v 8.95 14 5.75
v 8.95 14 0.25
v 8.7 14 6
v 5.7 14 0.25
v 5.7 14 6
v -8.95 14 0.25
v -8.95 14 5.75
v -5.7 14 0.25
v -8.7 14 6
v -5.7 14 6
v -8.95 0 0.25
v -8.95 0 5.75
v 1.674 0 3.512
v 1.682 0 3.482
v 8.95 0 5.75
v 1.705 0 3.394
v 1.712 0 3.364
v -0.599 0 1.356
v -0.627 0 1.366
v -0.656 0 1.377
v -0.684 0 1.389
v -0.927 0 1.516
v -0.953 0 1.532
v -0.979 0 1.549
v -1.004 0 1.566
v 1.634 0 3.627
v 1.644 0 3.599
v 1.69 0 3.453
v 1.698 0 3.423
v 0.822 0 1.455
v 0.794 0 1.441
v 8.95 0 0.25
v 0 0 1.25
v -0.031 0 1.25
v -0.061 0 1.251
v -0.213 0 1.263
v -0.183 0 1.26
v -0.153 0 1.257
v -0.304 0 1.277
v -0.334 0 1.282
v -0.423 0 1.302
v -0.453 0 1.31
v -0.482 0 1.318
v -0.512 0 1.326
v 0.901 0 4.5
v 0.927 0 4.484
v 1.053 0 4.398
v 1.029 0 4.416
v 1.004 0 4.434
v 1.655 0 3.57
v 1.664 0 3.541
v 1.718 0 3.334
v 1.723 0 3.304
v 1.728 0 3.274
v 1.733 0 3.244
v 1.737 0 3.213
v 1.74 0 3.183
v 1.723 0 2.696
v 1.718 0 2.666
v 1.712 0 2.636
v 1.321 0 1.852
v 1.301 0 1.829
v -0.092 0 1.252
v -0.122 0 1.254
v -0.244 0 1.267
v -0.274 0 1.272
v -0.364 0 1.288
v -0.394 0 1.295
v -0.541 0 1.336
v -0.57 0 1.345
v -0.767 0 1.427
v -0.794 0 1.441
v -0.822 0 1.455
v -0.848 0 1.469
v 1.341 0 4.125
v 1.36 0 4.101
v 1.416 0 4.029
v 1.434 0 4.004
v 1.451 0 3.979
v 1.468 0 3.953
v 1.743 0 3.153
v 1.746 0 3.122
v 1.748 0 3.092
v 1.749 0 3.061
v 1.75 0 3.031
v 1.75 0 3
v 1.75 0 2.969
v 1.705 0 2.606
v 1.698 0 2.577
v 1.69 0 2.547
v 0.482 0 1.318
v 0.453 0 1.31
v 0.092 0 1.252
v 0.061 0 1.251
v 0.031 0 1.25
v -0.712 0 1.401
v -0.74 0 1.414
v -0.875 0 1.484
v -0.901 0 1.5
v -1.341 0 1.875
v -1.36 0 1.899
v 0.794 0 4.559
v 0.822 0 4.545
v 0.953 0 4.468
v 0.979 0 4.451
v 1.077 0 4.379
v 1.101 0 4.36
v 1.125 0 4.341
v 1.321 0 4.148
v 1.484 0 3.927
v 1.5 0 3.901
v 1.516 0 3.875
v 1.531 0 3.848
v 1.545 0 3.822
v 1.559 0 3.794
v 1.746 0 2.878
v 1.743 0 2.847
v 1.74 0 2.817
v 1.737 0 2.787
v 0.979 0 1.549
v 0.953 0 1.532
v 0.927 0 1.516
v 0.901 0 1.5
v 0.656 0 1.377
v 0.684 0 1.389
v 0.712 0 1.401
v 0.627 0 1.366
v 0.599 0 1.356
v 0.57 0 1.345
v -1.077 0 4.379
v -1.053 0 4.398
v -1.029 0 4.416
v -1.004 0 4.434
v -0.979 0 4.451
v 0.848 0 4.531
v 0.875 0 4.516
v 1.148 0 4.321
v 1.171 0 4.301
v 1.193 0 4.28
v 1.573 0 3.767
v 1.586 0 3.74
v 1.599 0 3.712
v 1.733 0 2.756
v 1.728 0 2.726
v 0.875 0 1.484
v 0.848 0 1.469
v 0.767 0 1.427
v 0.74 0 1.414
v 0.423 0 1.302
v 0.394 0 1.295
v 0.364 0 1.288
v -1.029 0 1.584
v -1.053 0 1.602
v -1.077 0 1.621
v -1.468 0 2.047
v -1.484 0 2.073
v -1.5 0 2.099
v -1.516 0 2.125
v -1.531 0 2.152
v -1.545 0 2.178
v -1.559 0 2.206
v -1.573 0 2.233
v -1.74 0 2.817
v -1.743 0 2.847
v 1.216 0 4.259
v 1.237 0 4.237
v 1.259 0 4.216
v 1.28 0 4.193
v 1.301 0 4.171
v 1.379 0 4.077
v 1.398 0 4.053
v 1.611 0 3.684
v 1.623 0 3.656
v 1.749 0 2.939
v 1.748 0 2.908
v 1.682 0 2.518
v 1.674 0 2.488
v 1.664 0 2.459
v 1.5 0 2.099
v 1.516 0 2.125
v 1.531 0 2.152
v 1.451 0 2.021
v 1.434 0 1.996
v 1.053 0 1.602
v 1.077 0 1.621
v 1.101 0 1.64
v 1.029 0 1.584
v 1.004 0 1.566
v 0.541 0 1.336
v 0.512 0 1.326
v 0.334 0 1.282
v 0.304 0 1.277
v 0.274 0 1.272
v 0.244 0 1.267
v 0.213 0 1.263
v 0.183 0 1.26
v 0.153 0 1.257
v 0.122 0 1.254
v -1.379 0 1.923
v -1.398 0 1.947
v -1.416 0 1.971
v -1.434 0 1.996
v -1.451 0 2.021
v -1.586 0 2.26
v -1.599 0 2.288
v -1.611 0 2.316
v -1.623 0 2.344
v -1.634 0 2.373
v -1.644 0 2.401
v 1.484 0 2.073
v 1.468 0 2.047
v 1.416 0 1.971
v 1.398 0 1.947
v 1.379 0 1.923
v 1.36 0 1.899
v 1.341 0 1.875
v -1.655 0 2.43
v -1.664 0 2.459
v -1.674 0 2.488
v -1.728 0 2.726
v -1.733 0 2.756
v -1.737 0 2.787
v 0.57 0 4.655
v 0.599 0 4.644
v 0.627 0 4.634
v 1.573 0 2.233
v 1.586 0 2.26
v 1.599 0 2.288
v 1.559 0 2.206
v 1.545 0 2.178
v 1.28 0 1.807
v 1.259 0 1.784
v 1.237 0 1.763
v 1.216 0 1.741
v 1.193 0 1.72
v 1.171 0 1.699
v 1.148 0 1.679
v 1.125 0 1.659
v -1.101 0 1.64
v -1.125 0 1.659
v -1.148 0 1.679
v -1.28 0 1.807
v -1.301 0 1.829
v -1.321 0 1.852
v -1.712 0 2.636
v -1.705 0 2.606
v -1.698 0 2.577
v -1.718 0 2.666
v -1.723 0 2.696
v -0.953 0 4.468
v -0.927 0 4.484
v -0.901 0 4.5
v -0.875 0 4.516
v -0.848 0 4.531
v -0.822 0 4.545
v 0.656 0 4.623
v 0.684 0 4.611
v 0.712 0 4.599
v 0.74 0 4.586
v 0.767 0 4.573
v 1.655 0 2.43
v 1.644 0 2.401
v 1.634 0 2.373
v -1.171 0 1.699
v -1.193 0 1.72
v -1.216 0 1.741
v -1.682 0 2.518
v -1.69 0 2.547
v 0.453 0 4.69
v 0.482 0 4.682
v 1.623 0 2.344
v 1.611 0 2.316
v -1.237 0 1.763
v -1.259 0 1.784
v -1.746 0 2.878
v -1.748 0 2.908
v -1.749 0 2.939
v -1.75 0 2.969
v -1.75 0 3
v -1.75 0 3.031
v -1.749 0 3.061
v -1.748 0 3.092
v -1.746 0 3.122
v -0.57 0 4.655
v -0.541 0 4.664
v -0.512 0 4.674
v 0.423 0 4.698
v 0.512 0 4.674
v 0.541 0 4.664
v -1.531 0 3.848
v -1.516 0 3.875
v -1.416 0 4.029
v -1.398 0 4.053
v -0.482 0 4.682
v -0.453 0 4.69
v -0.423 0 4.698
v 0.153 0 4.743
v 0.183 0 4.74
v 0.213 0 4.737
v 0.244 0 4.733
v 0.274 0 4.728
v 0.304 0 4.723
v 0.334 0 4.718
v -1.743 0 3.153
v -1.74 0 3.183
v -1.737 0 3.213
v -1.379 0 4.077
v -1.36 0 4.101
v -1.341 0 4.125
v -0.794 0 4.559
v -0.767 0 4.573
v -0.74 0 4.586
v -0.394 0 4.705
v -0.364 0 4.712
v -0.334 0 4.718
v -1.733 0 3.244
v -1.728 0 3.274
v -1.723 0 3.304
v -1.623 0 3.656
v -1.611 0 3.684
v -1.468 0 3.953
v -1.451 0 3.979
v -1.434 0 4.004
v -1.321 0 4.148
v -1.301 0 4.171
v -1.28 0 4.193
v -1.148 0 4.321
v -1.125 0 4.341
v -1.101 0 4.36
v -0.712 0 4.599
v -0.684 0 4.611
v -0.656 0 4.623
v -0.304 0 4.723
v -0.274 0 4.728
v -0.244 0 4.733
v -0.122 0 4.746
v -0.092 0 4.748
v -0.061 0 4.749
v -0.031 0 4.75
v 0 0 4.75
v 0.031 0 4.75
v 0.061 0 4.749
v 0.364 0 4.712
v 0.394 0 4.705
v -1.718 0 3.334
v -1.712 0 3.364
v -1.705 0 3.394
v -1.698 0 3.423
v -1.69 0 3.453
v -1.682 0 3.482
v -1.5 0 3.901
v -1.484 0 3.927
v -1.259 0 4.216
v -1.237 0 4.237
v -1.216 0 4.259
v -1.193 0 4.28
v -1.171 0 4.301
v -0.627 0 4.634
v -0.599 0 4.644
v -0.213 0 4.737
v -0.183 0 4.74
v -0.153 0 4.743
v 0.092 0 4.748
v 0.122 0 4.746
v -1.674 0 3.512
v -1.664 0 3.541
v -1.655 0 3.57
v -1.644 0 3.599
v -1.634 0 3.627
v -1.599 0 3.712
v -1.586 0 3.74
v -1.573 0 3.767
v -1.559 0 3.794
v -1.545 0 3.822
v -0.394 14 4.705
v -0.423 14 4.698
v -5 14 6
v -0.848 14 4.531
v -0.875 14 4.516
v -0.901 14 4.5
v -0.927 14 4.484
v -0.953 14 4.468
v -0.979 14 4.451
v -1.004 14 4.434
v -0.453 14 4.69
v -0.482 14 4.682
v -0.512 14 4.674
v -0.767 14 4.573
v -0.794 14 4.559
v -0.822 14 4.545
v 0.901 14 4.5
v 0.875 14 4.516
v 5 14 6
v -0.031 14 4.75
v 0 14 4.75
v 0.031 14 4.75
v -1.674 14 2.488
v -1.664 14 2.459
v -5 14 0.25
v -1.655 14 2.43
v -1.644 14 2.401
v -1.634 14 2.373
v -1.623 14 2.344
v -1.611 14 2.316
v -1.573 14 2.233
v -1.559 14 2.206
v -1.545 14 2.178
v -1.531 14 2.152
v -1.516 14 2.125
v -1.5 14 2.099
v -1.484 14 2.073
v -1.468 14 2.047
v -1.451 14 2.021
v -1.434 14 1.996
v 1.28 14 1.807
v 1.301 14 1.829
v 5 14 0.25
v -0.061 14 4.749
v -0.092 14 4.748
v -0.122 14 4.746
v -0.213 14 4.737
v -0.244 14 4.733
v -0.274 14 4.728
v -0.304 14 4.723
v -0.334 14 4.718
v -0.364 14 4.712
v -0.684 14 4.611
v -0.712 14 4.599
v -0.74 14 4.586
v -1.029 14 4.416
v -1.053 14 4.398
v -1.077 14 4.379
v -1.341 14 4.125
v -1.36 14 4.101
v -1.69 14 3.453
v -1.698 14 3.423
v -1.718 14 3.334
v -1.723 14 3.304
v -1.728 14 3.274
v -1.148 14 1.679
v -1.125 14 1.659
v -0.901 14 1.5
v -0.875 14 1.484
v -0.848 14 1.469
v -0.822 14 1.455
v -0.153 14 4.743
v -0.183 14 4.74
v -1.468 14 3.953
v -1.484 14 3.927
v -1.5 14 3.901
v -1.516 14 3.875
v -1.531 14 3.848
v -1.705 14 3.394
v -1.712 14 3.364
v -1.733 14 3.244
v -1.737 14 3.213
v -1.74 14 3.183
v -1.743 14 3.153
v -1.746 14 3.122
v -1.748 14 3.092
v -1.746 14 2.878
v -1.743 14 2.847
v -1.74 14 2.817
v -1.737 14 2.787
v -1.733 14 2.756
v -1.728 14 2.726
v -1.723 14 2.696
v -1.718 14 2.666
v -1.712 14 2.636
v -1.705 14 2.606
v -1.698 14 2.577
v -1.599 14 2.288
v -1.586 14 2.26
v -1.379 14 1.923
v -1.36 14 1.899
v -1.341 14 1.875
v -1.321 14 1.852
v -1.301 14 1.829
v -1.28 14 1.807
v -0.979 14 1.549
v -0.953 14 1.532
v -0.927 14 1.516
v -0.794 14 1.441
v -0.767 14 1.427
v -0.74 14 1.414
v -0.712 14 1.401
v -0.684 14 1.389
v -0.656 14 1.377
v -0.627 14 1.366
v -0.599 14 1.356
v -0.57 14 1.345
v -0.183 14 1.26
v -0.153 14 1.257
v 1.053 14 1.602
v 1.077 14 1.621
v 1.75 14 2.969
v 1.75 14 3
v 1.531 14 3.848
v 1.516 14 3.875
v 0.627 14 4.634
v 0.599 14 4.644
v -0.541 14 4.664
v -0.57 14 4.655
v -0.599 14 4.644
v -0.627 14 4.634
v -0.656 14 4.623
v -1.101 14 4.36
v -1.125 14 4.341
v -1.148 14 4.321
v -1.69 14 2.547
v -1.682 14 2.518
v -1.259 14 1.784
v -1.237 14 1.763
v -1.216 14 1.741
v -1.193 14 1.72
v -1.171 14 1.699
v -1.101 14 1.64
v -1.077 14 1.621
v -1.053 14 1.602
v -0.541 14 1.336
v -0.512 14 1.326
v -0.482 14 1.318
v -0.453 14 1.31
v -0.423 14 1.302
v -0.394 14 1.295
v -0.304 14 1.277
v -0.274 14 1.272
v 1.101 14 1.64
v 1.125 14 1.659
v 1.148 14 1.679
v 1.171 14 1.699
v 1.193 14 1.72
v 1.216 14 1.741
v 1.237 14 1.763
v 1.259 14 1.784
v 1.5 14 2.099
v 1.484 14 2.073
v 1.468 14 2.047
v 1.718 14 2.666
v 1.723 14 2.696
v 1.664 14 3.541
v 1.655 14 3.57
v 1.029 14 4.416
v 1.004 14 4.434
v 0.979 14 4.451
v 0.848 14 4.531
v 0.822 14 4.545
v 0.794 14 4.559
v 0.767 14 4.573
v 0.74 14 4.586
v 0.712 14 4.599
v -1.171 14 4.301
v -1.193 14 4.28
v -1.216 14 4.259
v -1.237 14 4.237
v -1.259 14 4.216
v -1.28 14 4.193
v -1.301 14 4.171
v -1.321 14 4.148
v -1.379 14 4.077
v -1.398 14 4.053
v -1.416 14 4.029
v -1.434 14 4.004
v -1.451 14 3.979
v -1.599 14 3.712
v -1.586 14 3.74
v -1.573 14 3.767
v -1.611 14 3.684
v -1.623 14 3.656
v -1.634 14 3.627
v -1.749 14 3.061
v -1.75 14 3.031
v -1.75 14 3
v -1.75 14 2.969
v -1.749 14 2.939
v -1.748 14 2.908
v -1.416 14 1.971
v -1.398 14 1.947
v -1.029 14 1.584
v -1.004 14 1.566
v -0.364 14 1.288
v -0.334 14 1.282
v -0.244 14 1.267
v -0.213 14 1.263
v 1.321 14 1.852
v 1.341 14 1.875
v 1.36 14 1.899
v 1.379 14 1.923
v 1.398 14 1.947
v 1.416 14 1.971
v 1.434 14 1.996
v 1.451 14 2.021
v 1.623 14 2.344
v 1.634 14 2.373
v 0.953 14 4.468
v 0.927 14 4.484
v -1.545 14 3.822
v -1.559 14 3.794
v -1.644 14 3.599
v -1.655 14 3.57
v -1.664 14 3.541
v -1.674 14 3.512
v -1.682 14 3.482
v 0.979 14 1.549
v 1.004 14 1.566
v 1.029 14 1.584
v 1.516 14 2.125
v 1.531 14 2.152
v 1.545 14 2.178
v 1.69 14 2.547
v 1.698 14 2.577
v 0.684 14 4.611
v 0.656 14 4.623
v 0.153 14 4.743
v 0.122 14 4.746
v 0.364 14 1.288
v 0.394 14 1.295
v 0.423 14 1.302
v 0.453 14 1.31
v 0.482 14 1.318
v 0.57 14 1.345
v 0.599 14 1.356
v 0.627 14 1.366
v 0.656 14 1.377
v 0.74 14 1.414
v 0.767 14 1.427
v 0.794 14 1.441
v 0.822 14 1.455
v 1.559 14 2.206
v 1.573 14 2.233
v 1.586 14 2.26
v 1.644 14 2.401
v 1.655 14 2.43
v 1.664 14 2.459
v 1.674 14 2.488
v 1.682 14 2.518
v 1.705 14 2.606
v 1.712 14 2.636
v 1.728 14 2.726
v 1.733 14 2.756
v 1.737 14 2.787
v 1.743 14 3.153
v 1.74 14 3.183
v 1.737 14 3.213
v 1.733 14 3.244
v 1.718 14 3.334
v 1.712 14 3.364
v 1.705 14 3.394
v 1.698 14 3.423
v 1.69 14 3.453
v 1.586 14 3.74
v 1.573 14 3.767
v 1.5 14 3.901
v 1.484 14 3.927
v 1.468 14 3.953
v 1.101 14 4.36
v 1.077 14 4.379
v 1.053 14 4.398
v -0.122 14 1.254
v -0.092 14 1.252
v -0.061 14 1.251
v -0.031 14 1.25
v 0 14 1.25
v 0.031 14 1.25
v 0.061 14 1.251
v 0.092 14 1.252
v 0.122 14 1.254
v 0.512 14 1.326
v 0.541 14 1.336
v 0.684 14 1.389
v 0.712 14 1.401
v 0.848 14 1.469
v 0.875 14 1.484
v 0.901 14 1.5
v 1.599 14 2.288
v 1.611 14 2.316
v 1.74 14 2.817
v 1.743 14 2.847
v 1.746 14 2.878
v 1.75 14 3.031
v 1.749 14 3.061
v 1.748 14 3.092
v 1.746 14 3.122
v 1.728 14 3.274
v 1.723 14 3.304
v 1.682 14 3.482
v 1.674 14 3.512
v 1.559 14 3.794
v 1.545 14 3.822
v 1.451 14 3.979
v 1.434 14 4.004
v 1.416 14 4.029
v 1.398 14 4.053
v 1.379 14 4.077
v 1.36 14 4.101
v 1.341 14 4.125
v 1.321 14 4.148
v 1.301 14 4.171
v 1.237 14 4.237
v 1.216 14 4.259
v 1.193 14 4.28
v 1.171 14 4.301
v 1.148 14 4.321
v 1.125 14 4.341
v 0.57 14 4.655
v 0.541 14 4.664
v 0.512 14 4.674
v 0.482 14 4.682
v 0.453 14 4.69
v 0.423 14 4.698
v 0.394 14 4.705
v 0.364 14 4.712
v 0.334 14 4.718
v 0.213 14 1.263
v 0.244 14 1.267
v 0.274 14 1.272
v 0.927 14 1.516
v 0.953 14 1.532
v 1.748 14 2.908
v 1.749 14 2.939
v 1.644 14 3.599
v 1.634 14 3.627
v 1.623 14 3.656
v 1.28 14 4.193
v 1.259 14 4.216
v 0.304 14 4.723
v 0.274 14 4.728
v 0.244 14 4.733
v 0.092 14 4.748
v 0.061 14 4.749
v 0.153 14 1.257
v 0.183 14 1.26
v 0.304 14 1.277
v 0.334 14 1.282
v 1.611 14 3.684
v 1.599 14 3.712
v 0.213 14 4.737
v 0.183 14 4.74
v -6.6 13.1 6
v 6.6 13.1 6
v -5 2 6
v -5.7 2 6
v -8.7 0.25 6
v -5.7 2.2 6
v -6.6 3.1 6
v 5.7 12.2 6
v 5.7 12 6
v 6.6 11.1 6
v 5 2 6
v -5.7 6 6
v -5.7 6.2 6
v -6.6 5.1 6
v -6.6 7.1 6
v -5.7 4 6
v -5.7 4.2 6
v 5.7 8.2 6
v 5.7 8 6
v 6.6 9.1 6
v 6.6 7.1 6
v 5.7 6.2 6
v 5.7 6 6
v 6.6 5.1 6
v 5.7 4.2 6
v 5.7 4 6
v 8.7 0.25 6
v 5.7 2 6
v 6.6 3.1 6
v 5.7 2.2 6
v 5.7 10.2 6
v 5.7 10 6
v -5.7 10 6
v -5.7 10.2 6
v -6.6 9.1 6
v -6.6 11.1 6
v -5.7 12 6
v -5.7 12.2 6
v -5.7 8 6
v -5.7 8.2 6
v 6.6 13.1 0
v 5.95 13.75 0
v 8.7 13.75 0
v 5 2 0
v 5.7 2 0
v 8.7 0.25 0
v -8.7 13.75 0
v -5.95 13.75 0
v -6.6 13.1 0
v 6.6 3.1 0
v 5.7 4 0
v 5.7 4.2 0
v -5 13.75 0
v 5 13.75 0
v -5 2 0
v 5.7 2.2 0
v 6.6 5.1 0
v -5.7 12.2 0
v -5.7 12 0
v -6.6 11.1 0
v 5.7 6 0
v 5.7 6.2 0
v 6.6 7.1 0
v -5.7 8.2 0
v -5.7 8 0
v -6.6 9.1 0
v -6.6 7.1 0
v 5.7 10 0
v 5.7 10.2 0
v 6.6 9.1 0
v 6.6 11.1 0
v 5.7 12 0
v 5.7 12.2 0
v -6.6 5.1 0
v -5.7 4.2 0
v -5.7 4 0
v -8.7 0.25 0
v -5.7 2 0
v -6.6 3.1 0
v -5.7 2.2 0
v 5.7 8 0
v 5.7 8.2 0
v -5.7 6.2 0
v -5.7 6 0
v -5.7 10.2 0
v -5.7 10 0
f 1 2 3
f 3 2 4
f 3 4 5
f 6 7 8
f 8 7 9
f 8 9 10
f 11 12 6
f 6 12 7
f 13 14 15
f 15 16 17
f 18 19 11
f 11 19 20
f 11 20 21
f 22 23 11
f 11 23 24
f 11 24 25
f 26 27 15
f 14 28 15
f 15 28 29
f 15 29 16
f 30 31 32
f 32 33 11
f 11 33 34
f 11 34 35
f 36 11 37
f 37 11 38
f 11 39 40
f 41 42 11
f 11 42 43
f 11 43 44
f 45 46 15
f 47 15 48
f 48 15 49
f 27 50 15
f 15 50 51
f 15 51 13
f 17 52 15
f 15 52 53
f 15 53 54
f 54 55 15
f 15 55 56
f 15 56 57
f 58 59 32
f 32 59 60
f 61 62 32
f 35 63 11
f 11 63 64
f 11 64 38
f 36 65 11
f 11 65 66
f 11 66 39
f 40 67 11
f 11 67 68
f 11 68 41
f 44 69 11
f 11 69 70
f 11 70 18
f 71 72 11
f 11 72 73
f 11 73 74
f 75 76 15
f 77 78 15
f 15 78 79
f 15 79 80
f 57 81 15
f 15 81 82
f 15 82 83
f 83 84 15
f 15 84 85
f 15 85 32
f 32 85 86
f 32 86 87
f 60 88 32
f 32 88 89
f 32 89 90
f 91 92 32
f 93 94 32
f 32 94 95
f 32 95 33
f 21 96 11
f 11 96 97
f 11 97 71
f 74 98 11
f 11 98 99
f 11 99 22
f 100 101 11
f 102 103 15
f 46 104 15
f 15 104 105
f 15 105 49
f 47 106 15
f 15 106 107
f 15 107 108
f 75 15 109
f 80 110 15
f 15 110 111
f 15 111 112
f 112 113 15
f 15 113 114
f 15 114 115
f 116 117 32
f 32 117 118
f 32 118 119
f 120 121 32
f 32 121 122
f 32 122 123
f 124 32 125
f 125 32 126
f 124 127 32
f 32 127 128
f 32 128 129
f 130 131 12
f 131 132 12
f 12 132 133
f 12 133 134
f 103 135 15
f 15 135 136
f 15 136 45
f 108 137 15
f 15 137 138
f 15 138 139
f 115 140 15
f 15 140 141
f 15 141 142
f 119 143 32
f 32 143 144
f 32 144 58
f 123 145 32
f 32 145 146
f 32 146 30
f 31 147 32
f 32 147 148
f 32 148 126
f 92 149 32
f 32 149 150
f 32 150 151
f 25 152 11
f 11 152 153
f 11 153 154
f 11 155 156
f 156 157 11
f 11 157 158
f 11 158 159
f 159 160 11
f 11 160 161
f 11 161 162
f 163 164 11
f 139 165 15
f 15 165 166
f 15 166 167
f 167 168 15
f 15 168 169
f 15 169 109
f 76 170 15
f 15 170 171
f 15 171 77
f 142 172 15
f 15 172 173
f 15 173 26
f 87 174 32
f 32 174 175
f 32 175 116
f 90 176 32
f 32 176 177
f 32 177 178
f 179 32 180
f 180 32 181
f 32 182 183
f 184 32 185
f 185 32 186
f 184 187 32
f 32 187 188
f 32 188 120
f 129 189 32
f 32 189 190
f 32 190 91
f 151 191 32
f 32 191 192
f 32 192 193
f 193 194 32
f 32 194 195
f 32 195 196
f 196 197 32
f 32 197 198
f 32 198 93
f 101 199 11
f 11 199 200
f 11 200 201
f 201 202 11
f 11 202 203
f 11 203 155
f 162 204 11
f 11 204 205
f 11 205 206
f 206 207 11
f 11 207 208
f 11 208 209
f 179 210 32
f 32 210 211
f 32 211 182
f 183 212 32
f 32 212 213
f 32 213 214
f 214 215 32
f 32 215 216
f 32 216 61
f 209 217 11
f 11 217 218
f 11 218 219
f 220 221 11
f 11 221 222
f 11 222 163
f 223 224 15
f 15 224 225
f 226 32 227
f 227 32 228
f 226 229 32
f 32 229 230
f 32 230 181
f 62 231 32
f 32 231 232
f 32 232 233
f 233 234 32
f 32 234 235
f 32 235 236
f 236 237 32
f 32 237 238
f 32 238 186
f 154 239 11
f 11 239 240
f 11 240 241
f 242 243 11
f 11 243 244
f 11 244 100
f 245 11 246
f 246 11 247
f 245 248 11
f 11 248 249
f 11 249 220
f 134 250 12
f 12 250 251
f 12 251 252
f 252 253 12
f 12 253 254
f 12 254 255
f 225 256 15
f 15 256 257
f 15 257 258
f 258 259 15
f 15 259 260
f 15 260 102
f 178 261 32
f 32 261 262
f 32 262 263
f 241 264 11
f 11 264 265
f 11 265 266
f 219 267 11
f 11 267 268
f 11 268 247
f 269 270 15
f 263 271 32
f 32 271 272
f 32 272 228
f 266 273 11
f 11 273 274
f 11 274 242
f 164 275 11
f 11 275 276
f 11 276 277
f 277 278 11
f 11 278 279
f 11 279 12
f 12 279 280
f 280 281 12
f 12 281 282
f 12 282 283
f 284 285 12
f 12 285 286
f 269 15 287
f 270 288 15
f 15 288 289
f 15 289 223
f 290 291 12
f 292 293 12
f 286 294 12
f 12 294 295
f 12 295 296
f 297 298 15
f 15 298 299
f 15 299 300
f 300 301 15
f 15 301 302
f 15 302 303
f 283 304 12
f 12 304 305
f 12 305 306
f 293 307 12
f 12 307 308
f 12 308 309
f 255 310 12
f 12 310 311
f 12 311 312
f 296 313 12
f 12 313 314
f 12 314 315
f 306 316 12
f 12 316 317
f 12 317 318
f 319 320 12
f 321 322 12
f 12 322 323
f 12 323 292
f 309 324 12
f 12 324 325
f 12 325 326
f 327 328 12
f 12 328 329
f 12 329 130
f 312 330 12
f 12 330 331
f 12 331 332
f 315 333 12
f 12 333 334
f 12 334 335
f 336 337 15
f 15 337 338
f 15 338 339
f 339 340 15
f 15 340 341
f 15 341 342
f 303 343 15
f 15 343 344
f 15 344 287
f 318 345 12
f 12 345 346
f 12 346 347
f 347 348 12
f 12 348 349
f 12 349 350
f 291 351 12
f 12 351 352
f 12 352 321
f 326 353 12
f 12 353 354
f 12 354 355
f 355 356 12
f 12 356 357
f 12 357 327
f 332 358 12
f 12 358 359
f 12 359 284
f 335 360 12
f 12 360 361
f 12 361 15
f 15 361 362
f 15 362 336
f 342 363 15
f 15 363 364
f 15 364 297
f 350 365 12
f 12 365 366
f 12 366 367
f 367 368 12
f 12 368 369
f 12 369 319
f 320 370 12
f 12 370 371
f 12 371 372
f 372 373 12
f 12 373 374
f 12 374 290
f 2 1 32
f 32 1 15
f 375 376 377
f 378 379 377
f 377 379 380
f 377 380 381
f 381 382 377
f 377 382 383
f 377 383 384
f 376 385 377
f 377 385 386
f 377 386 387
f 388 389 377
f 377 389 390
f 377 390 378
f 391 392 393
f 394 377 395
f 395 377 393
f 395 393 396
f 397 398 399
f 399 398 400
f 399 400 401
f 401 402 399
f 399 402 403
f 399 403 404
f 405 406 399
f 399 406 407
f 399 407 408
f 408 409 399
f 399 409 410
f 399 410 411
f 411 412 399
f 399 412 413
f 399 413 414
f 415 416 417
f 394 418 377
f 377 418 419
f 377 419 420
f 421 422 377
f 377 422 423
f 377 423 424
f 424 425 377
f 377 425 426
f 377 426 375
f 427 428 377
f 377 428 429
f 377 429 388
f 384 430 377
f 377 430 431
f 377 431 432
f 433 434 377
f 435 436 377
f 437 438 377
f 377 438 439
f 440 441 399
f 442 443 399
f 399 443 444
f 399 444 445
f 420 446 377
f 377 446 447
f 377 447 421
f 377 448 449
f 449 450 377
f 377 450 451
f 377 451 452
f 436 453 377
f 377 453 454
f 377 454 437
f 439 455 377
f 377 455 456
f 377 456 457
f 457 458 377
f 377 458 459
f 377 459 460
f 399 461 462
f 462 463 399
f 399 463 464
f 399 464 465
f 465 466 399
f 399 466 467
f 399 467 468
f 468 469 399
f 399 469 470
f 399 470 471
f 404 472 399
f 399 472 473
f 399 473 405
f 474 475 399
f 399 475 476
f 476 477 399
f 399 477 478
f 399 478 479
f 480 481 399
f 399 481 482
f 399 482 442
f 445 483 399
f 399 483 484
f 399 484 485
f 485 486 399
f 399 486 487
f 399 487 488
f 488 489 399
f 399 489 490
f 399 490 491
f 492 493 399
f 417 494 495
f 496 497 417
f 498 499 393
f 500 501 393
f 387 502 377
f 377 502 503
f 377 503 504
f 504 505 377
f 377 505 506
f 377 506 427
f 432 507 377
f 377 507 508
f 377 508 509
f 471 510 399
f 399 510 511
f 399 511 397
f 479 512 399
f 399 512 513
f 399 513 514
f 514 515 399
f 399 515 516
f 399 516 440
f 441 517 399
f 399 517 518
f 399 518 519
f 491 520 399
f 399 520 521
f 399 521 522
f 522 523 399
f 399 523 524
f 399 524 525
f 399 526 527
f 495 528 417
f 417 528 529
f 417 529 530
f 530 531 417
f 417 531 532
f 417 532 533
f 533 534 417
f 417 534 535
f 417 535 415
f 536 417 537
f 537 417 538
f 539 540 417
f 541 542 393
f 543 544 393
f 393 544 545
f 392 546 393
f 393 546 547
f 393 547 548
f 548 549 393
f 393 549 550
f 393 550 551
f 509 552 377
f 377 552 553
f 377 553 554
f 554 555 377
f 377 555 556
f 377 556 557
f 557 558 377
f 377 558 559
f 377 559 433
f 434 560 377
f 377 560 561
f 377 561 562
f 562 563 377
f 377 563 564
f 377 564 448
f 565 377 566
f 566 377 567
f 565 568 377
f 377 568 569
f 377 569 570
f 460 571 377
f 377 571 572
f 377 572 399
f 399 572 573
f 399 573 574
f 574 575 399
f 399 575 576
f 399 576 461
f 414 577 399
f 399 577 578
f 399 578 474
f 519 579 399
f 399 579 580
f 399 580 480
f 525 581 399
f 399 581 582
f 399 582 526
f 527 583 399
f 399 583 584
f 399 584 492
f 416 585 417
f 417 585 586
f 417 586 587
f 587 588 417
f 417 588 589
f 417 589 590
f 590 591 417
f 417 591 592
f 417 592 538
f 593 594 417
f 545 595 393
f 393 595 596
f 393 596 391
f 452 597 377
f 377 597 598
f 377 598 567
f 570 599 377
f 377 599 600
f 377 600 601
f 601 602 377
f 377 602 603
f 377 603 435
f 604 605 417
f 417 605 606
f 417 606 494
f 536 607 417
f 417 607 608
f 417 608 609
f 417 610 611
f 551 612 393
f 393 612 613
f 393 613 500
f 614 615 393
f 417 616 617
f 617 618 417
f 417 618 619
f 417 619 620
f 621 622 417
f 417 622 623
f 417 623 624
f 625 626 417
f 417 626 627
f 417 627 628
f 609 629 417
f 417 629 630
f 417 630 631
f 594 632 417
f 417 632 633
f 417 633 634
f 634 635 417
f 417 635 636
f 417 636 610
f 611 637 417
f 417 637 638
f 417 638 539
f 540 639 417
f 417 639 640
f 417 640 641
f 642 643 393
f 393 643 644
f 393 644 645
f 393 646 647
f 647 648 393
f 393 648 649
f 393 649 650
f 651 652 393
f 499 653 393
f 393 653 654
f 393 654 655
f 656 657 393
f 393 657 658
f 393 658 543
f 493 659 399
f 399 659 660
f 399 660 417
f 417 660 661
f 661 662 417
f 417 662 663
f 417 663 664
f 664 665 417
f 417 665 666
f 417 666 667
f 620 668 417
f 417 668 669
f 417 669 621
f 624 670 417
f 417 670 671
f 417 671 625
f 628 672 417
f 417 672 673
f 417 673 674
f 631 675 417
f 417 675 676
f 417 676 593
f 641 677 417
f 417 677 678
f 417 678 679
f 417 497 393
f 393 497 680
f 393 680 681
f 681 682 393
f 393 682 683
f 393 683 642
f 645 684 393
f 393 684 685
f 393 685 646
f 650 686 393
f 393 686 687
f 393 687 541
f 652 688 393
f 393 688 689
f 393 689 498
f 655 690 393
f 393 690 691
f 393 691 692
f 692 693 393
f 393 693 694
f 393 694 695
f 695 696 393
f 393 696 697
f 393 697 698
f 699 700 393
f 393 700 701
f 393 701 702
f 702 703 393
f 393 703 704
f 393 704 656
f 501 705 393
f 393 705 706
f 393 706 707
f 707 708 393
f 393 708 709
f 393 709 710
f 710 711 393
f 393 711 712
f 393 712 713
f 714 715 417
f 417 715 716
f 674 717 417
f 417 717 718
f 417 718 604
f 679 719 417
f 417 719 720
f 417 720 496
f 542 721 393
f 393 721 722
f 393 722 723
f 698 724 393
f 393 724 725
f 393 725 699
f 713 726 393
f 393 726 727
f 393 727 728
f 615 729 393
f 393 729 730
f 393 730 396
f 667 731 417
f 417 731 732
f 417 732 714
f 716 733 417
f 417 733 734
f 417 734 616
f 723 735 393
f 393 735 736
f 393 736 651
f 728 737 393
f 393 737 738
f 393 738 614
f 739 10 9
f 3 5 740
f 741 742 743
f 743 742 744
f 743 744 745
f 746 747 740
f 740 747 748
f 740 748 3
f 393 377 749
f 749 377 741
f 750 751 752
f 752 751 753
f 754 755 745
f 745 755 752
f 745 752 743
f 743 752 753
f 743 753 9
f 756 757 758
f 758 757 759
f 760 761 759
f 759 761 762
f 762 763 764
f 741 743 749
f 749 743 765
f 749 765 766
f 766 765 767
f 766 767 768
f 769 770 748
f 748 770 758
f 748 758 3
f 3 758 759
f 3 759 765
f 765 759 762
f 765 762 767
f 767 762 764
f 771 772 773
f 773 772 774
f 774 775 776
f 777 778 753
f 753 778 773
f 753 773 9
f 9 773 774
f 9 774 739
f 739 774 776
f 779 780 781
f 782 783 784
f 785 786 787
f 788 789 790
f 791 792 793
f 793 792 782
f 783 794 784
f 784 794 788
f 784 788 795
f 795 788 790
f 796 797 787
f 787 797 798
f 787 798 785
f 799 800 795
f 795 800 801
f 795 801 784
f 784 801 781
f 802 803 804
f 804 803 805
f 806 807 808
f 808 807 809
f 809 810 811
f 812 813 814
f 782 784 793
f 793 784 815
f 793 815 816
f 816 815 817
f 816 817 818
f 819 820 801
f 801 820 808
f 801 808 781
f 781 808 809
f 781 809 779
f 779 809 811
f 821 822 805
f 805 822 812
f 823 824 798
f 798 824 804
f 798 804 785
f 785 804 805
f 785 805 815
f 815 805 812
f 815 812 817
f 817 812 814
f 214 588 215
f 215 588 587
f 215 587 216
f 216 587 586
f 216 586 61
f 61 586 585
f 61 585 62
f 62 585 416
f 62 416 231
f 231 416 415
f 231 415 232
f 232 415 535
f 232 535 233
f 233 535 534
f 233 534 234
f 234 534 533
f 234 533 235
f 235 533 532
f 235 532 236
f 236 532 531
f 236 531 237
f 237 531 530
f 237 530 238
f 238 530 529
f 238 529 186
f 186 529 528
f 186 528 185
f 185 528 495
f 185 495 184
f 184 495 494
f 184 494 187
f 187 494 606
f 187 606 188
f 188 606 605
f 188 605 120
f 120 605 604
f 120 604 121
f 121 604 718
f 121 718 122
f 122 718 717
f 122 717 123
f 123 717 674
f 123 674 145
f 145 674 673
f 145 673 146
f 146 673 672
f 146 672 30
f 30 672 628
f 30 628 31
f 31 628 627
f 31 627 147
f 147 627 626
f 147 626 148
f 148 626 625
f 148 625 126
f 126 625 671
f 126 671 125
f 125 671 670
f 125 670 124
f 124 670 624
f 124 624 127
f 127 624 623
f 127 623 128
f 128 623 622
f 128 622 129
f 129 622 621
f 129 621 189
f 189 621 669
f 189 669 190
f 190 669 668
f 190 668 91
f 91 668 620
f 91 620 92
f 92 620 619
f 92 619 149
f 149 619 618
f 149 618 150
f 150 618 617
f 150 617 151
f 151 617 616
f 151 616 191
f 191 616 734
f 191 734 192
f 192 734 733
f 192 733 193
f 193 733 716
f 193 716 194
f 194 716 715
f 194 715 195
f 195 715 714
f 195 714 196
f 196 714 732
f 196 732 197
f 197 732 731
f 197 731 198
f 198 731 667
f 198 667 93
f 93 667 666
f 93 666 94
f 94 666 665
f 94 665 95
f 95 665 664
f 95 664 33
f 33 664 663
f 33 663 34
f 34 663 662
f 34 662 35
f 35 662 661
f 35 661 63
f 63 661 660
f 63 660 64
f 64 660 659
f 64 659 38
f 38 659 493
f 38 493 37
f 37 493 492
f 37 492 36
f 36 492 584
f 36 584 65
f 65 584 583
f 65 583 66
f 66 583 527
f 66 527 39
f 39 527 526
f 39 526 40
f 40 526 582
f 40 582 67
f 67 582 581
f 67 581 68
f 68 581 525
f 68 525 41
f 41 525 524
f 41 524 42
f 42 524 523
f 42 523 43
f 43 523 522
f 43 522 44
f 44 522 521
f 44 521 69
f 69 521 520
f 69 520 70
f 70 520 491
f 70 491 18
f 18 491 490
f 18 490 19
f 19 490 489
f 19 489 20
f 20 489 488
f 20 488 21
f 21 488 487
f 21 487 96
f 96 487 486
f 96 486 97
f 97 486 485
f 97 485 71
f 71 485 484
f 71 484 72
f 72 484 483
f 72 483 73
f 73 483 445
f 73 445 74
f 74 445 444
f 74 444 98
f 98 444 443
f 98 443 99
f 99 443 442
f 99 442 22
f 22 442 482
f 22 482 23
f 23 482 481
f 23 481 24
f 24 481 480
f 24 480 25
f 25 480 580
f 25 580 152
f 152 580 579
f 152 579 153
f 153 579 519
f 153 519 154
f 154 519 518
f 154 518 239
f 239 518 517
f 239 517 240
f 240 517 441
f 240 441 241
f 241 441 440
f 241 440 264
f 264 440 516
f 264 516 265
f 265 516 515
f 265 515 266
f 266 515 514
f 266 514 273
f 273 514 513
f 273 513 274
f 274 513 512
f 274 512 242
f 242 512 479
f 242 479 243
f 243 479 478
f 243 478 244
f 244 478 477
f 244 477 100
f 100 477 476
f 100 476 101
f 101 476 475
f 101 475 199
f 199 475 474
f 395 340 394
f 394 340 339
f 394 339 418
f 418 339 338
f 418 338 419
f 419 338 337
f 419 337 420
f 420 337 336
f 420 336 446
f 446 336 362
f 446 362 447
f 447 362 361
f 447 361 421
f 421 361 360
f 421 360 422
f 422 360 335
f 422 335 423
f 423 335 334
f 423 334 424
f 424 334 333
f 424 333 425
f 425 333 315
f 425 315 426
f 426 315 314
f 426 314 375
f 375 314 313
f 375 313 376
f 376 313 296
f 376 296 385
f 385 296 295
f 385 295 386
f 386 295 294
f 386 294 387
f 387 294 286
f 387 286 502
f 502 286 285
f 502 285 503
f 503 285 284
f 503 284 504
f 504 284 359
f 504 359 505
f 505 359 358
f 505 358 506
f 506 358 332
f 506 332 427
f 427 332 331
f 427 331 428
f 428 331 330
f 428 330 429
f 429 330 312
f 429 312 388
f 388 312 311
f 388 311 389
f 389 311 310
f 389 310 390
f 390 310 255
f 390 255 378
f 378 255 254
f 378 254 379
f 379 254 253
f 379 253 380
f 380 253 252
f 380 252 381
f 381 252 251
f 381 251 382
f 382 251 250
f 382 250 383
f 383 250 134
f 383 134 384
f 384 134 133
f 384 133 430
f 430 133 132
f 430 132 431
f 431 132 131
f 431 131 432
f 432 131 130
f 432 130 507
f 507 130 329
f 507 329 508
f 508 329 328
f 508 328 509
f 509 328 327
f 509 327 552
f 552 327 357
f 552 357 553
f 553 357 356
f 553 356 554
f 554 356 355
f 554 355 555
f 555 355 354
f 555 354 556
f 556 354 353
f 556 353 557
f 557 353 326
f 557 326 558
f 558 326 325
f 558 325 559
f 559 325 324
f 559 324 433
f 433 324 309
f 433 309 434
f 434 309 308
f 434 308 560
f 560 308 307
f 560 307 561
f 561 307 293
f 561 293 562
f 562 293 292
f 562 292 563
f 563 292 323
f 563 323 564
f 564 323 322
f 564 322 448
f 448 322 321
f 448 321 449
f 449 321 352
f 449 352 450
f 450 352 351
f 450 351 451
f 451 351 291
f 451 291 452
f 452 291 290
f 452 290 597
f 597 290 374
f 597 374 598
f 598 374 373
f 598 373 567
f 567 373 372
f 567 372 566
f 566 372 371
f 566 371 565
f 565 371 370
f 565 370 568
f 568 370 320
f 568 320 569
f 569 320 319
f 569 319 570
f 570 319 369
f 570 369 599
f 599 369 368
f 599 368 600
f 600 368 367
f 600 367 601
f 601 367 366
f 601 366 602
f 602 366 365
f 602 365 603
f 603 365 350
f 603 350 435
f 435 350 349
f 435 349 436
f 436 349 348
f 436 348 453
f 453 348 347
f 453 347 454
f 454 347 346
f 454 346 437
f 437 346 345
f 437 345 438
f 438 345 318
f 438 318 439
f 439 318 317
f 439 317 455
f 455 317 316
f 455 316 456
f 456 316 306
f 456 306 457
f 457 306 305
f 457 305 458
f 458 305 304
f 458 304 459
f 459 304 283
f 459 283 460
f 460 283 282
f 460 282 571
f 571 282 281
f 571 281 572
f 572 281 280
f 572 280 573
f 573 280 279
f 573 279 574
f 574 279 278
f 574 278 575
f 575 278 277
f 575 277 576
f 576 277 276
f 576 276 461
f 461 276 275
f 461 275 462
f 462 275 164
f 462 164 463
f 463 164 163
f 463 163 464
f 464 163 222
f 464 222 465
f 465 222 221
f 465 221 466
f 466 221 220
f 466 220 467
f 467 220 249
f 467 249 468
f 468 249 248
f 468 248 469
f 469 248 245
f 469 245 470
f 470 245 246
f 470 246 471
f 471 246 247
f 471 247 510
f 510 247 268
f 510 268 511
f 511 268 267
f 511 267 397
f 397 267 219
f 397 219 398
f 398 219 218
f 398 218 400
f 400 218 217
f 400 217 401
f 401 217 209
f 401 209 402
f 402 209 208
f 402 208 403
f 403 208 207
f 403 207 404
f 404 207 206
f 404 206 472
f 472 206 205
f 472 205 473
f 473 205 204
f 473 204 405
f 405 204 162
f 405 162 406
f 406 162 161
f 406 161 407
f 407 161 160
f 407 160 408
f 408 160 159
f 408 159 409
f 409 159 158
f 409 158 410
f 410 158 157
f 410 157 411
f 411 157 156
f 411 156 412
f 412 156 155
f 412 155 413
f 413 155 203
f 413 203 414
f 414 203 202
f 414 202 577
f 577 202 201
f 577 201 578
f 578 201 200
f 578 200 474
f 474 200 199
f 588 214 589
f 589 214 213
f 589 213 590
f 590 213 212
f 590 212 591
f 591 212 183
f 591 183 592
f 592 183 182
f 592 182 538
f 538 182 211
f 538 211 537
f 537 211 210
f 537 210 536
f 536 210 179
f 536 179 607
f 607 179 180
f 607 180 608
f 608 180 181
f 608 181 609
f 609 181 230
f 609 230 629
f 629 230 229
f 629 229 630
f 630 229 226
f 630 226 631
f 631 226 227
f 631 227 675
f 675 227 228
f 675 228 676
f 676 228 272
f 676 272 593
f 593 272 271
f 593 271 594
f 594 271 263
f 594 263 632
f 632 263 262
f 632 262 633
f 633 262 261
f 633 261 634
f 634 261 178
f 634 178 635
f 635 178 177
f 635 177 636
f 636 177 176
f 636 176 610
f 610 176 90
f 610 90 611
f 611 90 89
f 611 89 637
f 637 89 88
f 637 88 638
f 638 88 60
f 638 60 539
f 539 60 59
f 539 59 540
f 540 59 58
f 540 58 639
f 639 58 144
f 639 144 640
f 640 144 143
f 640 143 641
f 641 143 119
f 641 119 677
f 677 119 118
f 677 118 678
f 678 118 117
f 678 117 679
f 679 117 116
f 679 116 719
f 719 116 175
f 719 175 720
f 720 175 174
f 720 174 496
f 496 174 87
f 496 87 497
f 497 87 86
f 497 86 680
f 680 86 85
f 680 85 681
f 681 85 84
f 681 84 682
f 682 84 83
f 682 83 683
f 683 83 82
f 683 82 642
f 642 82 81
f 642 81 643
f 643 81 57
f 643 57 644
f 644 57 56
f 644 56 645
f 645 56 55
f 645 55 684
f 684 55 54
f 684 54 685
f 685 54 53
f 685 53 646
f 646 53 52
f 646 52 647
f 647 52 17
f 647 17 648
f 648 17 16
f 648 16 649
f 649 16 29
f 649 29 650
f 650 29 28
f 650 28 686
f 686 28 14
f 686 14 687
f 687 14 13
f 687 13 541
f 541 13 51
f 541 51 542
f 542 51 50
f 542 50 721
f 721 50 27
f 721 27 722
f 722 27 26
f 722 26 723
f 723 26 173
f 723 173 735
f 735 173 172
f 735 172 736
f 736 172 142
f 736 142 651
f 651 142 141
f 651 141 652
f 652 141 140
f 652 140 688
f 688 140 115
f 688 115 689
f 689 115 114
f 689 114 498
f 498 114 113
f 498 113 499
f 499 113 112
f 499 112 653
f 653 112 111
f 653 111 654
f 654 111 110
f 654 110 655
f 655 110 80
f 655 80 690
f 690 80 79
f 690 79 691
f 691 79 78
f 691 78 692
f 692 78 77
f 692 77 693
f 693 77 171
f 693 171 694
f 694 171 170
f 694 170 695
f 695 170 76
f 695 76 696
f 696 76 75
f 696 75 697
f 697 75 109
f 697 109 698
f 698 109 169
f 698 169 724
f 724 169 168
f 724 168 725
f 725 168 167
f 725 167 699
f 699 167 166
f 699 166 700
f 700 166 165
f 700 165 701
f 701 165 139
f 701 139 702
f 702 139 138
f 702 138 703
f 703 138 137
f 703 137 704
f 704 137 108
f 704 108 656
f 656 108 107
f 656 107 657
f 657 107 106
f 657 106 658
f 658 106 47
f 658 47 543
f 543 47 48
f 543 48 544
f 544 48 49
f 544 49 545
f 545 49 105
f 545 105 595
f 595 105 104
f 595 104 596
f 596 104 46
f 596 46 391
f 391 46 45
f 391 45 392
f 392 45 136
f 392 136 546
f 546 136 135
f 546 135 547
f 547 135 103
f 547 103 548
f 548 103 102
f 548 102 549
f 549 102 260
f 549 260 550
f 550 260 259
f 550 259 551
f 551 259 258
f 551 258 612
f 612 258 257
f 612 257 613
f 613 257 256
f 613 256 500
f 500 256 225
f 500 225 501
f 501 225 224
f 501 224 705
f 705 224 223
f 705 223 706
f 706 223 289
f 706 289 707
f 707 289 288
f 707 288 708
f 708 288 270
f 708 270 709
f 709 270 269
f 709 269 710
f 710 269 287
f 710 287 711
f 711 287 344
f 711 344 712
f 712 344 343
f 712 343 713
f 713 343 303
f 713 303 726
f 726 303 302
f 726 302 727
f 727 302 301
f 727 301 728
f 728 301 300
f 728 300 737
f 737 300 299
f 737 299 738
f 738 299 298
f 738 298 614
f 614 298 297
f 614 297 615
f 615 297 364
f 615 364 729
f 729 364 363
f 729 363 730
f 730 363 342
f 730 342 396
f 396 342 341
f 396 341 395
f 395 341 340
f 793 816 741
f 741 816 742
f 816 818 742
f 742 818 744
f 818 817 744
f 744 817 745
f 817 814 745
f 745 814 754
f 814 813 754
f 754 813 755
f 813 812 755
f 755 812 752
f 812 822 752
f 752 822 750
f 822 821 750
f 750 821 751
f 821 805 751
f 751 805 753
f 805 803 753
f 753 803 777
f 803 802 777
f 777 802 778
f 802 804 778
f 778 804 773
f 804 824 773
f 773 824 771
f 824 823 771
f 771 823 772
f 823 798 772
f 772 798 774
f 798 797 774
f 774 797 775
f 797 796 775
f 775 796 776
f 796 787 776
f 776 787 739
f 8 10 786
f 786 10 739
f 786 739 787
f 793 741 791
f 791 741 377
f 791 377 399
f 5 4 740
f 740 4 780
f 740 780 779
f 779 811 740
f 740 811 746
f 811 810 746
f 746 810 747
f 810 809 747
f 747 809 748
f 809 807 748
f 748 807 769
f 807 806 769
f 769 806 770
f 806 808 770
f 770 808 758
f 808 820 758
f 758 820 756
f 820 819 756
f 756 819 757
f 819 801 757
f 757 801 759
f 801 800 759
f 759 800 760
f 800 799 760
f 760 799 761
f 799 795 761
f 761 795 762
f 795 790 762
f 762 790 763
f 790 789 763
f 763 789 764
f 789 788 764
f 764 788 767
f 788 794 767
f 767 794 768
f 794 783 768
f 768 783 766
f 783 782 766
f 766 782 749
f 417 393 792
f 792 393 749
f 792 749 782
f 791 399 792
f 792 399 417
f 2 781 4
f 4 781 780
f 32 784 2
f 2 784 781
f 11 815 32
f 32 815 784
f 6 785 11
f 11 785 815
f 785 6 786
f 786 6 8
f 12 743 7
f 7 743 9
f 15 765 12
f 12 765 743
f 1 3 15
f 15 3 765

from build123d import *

# Parameters (mm, degrees)
SKETCH1_W           = 17.9
SKETCH1_H           = 14
BOSS_EXTRUDE1_DEPTH = 6
SKETCH2_R           = 1.75
CUT_EXTRUDE1_DEPTH  = 15
CUT_EXTRUDE2_DEPTH  = 6
CHAMFER1_SIZE       = 0.25


with BuildPart() as part:
    # Sketch1 → Boss-Extrude1 (new body)
    with BuildSketch(Plane.XY):
        with Locations((0, 7)):
            Rectangle(SKETCH1_W, SKETCH1_H)
    extrude(amount=BOSS_EXTRUDE1_DEPTH)

    # Sketch2 → Cut-Extrude1 (cut, through all)
    with BuildSketch(Plane(origin=(0, 14, 0), x_dir=(1, 0, 0), z_dir=(0, 1, 0))):
        with Locations((0, -3)):
            Circle(SKETCH2_R)
    extrude(amount=-CUT_EXTRUDE1_DEPTH, mode=Mode.SUBTRACT)

    # Sketch3 → Cut-Extrude2 (cut)
    with BuildSketch(Plane.XY.offset(6)):
        Polygon((5, 14), (5, 2), (5.7, 2), (5.7, 2.2), (6.6, 3.1), (5.7, 4), (5.7, 4.2), (6.6, 5.1), (5.7, 6), (5.7, 6.2), (6.6, 7.1), (5.7, 8), (5.7, 8.2), (6.6, 9.1), (5.7, 10), (5.7, 10.2), (6.6, 11.1), (5.7, 12), (5.7, 12.2), (6.6, 13.1), (5.7, 14), align=None)
        Polygon((-5.7, 2.2), (-5.7, 2), (-5, 2), (-5, 14), (-5.7, 14), (-6.6, 13.1), (-5.7, 12.2), (-5.7, 12), (-6.6, 11.1), (-5.7, 10.2), (-5.7, 10), (-6.6, 9.1), (-5.7, 8.2), (-5.7, 8), (-6.6, 7.1), (-5.7, 6.2), (-5.7, 6), (-6.6, 5.1), (-5.7, 4.2), (-5.7, 4), (-6.6, 3.1), align=None)
    extrude(amount=-CUT_EXTRUDE2_DEPTH, mode=Mode.SUBTRACT)

    # Chamfer1
    chamfer1_edges = [part.edges().sort_by_distance(p)[0] for p in [
        (8.95, 7, 6),
        (0, 14, 0),
        (-7.325, 14, 0),
        (-8.95, 7, 6),
        (7.325, 14, 0),
        (8.95, 7, 0),
        (0, 0, 0),
        (-8.95, 7, 0),
        (0, 0, 6),
    ]]
    chamfer(chamfer1_edges, length=CHAMFER1_SIZE)


solid = part.part
